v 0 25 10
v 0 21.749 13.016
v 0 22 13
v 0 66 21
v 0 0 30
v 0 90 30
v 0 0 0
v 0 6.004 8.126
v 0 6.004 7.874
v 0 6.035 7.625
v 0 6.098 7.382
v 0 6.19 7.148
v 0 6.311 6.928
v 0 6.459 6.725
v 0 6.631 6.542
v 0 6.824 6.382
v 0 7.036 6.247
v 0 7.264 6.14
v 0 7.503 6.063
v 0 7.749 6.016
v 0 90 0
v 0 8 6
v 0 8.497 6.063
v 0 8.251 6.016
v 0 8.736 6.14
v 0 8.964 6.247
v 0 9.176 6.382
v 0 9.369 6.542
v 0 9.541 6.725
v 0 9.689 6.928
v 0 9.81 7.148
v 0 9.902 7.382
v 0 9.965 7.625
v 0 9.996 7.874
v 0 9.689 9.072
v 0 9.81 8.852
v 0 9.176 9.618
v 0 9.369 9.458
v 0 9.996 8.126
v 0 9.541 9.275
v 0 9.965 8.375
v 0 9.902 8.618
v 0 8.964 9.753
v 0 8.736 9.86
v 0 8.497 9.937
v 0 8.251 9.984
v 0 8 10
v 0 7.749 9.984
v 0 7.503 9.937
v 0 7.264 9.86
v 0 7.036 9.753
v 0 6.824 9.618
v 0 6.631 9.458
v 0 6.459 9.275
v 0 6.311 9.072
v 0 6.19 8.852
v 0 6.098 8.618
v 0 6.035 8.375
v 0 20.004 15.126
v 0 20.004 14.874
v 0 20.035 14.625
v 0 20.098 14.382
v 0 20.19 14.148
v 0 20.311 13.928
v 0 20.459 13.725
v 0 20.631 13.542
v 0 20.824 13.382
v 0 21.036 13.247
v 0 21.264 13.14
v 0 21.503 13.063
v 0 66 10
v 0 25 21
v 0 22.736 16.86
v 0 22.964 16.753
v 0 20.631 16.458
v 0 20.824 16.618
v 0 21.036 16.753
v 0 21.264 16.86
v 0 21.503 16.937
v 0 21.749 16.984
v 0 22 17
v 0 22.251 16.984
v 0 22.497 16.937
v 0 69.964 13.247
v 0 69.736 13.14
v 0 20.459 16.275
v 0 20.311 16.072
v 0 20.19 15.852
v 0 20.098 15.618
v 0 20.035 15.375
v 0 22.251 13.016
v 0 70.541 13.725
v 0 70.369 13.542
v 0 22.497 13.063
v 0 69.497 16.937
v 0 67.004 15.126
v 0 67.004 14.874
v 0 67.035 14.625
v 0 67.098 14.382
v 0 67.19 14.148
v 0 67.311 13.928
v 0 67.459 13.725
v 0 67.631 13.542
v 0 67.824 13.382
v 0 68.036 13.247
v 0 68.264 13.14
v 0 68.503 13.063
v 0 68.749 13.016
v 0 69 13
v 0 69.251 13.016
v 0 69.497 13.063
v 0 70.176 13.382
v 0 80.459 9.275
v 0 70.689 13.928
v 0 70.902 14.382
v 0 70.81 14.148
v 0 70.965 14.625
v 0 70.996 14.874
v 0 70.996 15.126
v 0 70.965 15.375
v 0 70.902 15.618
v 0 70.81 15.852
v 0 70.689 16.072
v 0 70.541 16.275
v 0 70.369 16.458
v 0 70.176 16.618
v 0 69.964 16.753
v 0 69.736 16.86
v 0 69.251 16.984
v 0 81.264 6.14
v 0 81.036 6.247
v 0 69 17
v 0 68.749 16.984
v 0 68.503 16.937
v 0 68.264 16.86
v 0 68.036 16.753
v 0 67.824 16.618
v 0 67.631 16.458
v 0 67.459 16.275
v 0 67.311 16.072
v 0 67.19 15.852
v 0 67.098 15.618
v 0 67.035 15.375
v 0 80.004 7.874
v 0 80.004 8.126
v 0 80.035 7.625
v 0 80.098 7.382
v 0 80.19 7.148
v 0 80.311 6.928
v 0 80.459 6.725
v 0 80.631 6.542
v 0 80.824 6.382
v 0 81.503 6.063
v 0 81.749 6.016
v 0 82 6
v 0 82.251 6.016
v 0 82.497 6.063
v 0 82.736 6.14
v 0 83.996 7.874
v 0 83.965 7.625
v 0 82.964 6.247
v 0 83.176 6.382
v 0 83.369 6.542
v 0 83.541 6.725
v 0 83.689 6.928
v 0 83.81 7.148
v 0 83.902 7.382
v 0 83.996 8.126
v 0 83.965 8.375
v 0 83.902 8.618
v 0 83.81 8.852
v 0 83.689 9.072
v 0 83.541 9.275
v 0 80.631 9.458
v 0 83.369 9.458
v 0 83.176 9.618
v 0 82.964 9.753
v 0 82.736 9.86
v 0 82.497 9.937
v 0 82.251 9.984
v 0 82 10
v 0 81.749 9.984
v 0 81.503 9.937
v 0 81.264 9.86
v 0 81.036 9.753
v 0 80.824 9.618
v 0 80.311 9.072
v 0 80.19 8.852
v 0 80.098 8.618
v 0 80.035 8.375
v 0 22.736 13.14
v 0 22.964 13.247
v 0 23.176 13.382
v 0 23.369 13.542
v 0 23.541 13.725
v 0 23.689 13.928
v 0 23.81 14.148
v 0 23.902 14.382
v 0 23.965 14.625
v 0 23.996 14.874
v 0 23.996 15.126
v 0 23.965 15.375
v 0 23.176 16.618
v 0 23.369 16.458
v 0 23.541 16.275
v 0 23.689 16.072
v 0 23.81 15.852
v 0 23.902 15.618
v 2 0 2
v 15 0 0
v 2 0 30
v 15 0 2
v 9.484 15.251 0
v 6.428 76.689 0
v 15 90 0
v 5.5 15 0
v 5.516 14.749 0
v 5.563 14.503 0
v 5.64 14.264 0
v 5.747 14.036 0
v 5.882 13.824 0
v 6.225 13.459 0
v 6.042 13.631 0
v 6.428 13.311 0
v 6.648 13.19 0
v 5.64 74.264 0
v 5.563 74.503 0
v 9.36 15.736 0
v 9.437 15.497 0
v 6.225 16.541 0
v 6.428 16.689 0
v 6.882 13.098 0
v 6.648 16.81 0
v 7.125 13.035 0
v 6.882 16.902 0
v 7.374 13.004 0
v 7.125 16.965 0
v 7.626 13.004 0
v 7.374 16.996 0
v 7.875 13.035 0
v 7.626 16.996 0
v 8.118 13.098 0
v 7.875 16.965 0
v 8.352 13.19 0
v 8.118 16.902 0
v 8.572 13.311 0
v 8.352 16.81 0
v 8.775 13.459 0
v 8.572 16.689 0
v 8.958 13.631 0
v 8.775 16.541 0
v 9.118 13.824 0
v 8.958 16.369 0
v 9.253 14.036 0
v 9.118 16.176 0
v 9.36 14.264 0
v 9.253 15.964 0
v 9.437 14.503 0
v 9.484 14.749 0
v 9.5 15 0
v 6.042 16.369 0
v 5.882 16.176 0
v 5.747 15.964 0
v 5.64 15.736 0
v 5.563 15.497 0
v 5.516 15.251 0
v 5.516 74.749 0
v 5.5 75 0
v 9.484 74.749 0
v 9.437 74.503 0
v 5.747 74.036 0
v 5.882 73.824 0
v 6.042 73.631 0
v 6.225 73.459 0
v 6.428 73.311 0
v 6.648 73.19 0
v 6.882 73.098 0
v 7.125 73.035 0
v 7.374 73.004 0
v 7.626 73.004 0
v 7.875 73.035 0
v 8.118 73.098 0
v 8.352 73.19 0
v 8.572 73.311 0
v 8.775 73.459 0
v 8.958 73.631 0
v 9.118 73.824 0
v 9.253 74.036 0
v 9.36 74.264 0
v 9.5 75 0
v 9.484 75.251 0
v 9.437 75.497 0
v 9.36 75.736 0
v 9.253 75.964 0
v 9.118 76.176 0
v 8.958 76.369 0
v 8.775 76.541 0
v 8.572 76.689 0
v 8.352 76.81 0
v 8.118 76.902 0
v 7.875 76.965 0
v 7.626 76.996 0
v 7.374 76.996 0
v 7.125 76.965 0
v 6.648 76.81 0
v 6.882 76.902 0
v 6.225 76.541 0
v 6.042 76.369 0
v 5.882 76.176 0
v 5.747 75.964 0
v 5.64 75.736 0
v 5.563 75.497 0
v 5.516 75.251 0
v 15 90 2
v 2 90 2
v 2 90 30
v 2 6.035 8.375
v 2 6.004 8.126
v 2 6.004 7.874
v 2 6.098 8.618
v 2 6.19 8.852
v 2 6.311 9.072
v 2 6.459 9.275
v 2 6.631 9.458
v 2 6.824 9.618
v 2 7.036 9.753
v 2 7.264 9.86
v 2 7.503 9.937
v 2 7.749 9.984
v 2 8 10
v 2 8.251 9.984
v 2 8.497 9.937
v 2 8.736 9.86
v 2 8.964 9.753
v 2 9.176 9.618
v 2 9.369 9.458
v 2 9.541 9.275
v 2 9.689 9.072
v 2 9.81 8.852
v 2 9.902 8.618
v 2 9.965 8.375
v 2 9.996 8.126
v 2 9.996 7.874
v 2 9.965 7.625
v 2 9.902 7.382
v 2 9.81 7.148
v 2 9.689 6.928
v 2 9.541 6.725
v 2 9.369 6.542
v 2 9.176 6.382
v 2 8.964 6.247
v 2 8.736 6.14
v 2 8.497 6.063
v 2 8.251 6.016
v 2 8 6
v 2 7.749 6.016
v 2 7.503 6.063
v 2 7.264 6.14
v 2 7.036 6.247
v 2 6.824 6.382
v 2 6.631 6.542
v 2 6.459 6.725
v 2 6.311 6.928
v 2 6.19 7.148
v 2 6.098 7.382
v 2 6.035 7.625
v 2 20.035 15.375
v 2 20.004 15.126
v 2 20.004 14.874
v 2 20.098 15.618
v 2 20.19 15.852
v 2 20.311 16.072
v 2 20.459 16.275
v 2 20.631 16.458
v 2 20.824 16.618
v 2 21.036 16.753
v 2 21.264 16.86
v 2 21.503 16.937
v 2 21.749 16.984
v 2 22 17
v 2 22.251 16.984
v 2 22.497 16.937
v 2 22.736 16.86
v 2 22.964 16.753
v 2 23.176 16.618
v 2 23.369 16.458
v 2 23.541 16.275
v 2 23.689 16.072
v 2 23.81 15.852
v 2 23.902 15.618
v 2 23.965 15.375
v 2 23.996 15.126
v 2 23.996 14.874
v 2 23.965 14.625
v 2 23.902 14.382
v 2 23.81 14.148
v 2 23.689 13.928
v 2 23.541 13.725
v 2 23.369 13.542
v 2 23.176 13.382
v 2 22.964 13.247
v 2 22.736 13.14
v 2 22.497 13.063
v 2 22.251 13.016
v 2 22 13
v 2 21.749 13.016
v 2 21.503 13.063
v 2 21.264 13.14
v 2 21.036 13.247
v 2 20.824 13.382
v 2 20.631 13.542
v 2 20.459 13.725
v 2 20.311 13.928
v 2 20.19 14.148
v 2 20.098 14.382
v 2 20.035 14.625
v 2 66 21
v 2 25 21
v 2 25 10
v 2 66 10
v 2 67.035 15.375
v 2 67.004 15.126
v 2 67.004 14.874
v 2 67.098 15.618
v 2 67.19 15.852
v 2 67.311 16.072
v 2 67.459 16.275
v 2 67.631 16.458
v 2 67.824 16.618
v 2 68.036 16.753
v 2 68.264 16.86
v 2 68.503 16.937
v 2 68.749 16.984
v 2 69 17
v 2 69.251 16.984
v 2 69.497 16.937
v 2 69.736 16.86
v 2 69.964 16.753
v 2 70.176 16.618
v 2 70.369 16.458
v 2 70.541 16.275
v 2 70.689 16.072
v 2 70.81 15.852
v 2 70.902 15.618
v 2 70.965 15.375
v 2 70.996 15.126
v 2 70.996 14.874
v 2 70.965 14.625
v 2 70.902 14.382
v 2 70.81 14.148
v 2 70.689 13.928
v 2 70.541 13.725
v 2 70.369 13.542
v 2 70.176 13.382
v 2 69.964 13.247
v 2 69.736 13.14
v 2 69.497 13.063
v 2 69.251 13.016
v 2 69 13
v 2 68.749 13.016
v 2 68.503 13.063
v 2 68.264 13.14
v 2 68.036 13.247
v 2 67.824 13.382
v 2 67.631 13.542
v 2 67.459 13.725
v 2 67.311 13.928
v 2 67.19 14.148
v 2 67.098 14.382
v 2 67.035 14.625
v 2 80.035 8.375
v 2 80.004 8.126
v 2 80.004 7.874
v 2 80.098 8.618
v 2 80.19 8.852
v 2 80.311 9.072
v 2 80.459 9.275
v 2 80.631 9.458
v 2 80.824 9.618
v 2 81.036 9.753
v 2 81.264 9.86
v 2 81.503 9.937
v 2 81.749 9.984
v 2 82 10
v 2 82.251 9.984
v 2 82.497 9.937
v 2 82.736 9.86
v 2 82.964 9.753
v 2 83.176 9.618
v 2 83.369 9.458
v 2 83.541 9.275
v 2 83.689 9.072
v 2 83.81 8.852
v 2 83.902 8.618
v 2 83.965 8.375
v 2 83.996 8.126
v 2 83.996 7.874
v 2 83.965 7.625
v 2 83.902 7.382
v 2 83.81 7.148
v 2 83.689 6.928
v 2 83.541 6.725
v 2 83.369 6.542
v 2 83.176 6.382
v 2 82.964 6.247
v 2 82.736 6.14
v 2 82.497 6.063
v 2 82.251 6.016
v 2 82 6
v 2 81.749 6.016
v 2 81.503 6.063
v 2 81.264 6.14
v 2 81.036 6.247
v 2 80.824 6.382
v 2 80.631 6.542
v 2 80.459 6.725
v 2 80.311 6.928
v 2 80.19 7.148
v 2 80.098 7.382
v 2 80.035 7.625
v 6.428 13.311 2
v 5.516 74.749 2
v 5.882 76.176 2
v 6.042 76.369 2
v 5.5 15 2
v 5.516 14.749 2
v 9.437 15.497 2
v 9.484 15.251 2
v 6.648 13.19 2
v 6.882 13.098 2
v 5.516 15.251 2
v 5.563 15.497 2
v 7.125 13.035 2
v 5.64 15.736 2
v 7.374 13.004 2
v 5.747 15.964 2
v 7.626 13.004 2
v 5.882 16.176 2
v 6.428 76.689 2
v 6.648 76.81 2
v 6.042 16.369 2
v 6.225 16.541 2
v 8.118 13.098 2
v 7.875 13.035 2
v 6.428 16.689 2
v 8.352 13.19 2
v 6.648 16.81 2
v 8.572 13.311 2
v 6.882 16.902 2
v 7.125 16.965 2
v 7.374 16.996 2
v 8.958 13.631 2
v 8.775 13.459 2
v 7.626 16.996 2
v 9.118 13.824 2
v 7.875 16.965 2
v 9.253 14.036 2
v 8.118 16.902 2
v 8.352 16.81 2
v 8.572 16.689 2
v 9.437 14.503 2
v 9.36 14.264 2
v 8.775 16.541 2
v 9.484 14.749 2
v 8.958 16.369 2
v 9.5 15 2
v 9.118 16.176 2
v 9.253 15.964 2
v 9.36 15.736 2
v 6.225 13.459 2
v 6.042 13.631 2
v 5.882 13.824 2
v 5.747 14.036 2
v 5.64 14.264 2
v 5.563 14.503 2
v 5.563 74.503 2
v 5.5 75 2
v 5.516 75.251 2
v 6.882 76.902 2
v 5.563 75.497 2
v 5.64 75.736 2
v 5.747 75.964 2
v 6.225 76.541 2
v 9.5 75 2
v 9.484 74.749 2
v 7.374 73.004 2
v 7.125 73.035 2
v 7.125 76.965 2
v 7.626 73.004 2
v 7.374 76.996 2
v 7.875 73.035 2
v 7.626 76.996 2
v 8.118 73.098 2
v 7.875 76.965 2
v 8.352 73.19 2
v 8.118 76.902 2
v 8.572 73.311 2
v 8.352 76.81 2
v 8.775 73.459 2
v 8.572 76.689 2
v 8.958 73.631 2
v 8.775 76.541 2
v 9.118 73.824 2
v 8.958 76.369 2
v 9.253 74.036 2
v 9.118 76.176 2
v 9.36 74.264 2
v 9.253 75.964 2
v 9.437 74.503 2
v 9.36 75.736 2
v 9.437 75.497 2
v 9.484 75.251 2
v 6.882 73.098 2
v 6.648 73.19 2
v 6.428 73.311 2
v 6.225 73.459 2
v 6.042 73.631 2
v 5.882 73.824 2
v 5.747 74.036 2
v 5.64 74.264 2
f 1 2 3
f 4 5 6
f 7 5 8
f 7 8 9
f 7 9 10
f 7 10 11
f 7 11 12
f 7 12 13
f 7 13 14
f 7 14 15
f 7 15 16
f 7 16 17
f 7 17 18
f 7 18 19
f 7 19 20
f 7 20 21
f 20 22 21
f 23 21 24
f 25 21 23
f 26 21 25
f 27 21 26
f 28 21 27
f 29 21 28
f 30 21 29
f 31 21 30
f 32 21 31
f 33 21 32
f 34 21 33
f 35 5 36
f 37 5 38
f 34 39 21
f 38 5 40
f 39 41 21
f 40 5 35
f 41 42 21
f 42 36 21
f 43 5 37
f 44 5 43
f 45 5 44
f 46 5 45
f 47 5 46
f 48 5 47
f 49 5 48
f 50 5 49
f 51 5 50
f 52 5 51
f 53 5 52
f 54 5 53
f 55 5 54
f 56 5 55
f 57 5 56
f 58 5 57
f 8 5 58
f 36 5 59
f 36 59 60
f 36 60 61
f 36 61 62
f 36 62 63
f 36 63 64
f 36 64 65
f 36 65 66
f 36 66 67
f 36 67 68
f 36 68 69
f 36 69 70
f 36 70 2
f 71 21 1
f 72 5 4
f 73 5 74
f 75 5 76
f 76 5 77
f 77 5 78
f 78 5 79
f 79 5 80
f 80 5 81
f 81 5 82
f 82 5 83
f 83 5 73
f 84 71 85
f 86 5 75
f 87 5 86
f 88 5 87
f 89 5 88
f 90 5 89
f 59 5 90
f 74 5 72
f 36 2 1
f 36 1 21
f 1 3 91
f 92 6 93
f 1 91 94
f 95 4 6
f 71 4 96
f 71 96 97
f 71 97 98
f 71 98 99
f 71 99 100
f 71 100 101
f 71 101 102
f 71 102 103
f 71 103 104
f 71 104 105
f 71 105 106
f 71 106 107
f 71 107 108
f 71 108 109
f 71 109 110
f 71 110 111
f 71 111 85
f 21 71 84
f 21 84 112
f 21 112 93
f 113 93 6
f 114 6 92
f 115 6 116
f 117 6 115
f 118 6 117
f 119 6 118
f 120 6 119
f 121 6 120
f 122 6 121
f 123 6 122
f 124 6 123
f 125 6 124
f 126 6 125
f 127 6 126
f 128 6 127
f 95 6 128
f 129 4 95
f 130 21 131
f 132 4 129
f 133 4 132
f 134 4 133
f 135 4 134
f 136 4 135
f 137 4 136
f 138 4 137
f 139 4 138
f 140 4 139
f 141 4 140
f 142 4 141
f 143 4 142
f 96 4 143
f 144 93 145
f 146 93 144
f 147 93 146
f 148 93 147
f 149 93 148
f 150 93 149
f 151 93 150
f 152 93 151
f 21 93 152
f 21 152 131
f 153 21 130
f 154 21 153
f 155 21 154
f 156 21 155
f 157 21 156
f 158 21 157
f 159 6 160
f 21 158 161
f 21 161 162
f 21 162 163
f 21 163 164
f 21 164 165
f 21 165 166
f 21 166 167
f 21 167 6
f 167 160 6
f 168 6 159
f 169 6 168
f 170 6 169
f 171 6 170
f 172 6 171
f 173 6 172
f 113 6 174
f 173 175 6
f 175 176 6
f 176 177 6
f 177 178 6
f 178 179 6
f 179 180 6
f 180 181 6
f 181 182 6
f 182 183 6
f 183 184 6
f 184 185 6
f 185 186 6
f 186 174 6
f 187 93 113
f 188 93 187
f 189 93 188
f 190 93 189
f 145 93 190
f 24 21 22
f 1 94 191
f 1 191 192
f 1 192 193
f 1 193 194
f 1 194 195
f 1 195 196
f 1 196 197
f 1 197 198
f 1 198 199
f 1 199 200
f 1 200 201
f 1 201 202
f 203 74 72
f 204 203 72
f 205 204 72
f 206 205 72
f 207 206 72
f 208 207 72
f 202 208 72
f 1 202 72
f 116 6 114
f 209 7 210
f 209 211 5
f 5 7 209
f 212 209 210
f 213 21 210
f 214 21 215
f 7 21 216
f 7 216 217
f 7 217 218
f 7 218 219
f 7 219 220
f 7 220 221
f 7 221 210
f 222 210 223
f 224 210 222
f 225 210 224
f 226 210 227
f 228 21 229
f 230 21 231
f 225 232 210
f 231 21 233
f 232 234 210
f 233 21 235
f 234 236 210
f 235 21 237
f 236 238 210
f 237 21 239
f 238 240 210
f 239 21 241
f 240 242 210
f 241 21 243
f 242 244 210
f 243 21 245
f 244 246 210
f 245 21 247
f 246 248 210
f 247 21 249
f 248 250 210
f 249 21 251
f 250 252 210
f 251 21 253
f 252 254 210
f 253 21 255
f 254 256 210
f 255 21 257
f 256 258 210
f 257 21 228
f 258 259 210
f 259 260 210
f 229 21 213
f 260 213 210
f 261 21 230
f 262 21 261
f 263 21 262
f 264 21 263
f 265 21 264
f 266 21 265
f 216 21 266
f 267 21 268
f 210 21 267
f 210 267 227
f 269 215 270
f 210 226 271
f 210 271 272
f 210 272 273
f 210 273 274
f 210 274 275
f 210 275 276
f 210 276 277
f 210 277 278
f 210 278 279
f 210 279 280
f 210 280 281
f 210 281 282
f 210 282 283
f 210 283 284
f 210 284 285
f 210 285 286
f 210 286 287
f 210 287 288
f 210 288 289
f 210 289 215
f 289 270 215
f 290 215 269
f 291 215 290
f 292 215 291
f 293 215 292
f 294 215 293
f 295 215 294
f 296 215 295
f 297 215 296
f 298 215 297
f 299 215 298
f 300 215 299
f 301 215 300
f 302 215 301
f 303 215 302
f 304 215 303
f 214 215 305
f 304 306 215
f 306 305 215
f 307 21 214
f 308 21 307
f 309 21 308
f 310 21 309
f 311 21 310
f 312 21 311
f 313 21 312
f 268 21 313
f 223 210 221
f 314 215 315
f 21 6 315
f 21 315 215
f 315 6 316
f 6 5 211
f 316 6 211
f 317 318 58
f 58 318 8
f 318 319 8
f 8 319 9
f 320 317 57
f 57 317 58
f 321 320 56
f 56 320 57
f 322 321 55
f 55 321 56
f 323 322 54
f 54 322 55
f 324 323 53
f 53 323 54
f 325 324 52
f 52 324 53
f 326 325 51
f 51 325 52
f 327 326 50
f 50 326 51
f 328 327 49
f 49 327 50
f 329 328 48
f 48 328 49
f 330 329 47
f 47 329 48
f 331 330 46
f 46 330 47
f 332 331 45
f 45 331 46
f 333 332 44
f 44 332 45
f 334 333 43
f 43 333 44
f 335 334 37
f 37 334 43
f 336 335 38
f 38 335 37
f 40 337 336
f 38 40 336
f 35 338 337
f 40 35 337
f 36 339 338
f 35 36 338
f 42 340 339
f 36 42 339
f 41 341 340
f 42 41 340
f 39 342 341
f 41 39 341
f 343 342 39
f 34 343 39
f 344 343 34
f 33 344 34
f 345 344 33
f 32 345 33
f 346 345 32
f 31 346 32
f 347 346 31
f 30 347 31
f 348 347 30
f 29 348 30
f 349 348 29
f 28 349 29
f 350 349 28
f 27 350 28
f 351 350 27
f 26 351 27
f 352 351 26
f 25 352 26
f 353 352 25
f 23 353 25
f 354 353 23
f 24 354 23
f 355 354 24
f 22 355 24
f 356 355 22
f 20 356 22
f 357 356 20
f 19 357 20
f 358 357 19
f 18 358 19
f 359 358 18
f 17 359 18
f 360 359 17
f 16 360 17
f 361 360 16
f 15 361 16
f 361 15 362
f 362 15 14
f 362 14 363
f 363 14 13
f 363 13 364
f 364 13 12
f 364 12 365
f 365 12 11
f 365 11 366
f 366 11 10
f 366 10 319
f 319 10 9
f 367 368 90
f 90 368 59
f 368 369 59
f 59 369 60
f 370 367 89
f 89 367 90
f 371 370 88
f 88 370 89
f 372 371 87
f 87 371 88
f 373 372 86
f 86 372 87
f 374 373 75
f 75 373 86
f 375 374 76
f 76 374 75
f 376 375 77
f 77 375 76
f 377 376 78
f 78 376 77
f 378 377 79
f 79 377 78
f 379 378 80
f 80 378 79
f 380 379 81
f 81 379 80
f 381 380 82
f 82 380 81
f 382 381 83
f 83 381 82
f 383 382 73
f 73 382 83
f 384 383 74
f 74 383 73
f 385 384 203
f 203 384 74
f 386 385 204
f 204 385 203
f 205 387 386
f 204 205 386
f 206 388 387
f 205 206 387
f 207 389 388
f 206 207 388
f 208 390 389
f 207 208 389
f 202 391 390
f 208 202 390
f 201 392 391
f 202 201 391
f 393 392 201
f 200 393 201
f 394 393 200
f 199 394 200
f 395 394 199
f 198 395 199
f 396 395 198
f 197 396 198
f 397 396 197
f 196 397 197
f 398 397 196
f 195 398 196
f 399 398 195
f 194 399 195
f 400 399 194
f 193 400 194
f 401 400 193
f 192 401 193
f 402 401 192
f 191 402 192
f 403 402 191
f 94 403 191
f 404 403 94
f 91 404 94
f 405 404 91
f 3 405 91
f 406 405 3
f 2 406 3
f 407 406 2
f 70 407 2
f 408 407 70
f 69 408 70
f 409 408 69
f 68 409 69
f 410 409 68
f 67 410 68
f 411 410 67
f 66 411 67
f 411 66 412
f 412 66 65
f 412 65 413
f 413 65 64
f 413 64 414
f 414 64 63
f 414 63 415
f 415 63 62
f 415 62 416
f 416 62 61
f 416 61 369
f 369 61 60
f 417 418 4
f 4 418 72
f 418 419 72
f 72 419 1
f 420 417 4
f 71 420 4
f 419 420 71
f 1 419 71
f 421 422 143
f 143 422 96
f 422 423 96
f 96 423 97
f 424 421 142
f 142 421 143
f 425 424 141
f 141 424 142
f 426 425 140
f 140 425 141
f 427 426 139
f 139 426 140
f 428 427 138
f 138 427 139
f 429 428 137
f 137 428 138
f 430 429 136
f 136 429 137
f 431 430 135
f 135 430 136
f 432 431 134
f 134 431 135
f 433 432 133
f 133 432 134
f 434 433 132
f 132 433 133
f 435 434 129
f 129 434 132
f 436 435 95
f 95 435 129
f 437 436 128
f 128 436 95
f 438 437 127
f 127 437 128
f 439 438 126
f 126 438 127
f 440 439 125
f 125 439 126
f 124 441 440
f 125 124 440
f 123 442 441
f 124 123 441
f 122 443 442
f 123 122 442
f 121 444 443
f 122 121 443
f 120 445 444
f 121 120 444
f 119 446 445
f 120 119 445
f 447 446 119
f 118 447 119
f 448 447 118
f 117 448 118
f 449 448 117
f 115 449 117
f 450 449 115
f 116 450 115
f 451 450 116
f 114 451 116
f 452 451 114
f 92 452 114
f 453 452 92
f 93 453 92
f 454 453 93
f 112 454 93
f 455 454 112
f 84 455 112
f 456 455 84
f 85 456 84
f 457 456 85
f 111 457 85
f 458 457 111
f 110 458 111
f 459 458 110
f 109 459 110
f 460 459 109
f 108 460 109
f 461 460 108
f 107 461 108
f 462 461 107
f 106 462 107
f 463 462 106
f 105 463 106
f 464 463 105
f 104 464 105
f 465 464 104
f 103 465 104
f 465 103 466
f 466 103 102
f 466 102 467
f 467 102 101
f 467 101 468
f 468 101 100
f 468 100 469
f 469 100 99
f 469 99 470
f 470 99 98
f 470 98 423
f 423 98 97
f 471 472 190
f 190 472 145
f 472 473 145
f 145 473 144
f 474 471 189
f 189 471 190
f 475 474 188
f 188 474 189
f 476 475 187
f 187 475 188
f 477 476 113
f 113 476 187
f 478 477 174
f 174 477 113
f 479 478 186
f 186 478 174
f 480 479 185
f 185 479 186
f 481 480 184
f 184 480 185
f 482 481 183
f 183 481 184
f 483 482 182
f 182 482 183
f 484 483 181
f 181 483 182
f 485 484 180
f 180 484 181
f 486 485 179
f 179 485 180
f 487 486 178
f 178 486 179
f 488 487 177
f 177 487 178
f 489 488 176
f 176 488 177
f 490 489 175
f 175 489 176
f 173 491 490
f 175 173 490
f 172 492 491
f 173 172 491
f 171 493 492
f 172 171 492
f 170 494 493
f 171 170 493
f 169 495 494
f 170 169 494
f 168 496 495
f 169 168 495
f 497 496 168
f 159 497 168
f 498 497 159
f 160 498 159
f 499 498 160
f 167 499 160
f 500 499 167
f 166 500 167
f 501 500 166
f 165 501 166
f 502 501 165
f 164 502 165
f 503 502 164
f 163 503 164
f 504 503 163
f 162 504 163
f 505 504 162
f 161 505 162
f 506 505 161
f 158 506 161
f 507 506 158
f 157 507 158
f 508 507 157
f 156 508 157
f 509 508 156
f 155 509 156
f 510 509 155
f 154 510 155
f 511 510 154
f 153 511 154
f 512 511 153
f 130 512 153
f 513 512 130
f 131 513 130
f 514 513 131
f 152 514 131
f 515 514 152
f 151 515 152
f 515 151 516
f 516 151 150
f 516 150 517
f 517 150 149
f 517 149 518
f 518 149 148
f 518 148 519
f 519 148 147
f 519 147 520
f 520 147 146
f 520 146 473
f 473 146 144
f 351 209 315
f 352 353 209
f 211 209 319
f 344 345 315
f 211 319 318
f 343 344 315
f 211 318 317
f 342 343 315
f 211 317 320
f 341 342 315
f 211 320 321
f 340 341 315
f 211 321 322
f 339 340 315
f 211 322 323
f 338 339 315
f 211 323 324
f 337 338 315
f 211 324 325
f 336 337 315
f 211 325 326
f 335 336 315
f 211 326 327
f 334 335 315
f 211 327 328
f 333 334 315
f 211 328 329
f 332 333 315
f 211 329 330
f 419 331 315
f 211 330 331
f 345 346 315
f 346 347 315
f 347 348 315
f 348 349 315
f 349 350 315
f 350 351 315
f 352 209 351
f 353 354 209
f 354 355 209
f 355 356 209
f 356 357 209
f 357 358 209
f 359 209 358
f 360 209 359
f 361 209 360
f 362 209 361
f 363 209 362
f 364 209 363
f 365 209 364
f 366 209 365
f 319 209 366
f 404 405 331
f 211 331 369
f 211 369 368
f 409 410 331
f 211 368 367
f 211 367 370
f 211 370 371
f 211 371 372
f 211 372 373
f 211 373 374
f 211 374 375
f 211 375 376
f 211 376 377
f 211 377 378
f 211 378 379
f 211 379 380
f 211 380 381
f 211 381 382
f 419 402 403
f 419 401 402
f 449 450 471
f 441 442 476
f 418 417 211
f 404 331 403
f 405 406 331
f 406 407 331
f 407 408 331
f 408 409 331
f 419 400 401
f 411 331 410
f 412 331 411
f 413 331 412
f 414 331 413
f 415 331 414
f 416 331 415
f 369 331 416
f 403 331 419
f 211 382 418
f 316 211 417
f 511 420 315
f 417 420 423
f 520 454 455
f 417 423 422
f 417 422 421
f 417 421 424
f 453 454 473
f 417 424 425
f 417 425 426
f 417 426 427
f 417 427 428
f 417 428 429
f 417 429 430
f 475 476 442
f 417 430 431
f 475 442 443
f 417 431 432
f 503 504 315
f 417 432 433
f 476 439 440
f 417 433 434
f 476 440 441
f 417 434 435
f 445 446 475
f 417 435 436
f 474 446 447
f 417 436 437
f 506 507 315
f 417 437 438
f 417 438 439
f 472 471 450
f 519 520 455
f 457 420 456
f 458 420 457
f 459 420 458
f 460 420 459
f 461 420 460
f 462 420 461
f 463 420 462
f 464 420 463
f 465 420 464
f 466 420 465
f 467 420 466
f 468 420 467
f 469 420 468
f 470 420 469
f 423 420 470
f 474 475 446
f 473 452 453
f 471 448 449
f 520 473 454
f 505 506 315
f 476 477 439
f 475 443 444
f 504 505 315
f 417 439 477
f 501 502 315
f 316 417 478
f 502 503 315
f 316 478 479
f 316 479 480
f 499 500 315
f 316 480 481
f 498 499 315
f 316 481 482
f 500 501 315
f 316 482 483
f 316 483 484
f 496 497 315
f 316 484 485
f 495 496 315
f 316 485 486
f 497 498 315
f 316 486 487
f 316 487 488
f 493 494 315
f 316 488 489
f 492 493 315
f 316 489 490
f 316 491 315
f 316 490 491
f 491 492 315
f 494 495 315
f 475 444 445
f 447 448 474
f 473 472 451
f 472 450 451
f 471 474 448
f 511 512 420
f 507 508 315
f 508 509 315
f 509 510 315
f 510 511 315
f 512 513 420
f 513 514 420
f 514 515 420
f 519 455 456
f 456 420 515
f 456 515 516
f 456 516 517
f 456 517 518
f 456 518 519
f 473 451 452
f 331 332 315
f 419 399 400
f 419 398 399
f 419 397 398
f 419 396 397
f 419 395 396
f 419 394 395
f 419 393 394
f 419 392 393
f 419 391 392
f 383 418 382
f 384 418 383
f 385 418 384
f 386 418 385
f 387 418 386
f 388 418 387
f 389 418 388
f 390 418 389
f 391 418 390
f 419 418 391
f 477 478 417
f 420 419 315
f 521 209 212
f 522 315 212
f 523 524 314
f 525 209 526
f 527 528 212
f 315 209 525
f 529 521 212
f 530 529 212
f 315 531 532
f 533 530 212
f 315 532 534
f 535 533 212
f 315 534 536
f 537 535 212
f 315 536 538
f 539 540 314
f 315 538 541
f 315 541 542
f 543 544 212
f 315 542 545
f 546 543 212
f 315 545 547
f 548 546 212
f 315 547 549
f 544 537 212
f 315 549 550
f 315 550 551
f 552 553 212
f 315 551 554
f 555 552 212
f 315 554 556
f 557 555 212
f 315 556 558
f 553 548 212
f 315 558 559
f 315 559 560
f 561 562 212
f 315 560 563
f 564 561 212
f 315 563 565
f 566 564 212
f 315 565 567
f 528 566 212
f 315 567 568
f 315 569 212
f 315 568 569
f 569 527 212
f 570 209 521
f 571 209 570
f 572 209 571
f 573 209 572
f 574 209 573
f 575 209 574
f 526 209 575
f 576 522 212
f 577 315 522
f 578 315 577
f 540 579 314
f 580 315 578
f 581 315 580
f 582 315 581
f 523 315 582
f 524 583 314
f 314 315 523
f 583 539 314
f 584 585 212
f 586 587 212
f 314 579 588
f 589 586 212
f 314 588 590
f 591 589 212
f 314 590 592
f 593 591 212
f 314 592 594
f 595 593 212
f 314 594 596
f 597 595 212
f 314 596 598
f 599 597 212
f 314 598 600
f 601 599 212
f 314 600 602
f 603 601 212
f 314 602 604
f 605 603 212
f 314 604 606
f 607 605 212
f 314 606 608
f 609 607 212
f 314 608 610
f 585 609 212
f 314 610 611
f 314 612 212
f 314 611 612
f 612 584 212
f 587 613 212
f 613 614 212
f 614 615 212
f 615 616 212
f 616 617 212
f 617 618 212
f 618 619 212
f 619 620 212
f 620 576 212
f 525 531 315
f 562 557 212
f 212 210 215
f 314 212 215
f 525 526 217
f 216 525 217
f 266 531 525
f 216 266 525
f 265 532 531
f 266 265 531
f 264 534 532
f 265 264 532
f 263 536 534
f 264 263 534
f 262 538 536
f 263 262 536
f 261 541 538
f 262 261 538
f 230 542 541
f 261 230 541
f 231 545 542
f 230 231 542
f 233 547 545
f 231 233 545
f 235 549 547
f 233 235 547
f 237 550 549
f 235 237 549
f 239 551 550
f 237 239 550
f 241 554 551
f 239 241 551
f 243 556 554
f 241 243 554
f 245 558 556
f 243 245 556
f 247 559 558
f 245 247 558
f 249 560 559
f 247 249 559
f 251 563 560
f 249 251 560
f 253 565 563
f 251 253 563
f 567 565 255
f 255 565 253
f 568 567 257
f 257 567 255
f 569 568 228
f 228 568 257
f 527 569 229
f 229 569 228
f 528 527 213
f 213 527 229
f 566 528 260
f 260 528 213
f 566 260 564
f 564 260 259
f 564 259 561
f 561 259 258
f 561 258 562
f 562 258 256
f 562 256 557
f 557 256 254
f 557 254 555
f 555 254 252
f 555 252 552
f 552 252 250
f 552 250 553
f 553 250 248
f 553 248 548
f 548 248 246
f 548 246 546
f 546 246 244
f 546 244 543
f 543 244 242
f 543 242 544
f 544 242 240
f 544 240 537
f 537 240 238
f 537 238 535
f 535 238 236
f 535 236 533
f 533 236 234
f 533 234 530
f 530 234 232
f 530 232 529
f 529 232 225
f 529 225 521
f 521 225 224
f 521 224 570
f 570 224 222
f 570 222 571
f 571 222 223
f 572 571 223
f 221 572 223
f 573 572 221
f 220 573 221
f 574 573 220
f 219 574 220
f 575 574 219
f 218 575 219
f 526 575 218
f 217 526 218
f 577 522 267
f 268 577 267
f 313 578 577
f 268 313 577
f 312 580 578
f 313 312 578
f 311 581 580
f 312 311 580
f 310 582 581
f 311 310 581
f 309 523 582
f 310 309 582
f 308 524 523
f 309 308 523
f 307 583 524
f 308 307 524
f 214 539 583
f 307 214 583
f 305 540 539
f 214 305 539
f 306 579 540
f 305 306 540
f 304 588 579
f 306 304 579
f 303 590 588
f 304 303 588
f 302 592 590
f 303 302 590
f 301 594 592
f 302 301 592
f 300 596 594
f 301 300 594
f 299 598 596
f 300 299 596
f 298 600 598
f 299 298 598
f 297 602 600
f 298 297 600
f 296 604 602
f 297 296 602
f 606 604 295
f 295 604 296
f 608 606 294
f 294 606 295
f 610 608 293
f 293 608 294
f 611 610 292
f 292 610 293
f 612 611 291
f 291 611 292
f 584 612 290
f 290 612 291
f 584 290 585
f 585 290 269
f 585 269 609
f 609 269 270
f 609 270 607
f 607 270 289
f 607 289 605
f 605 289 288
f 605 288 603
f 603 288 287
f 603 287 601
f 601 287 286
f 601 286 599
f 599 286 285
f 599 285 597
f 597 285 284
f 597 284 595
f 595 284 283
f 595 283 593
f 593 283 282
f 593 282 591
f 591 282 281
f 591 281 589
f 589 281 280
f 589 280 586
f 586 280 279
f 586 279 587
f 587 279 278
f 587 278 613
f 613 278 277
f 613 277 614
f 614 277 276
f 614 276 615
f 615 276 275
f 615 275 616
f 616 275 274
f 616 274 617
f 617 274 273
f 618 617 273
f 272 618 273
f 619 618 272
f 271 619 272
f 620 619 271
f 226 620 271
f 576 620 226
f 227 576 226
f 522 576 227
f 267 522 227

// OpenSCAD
$fn = 50;

difference() {
	cube([2, 90, 30]);
	// D sub 25 pin female connector
	translate([-0.5, 8, 8]) rotate([0, 90, 0]) cylinder(r = 2, h = 3);
	translate([-0.5, 82, 8]) rotate([0, 90, 0]) cylinder(r = 2, h = 3);
	translate([0, -35, 0]) {
		translate([-0.5, 60, 10]) cube([3, 41, 11]);
		translate([-0.5, 57, 15]) rotate([0, 90, 0]) cylinder(r = 2, h = 3);
		translate([-0.5, 104, 15]) rotate([0, 90, 0]) cylinder(r = 2, h = 3);
	}
}

difference() {
	cube([15, 90, 2]);
	translate([7.5, 15, -0.5]) cylinder(r = 2, h = 3);
	translate([7.5, 75, -0.5]) cylinder(r = 2, h = 3);
}
